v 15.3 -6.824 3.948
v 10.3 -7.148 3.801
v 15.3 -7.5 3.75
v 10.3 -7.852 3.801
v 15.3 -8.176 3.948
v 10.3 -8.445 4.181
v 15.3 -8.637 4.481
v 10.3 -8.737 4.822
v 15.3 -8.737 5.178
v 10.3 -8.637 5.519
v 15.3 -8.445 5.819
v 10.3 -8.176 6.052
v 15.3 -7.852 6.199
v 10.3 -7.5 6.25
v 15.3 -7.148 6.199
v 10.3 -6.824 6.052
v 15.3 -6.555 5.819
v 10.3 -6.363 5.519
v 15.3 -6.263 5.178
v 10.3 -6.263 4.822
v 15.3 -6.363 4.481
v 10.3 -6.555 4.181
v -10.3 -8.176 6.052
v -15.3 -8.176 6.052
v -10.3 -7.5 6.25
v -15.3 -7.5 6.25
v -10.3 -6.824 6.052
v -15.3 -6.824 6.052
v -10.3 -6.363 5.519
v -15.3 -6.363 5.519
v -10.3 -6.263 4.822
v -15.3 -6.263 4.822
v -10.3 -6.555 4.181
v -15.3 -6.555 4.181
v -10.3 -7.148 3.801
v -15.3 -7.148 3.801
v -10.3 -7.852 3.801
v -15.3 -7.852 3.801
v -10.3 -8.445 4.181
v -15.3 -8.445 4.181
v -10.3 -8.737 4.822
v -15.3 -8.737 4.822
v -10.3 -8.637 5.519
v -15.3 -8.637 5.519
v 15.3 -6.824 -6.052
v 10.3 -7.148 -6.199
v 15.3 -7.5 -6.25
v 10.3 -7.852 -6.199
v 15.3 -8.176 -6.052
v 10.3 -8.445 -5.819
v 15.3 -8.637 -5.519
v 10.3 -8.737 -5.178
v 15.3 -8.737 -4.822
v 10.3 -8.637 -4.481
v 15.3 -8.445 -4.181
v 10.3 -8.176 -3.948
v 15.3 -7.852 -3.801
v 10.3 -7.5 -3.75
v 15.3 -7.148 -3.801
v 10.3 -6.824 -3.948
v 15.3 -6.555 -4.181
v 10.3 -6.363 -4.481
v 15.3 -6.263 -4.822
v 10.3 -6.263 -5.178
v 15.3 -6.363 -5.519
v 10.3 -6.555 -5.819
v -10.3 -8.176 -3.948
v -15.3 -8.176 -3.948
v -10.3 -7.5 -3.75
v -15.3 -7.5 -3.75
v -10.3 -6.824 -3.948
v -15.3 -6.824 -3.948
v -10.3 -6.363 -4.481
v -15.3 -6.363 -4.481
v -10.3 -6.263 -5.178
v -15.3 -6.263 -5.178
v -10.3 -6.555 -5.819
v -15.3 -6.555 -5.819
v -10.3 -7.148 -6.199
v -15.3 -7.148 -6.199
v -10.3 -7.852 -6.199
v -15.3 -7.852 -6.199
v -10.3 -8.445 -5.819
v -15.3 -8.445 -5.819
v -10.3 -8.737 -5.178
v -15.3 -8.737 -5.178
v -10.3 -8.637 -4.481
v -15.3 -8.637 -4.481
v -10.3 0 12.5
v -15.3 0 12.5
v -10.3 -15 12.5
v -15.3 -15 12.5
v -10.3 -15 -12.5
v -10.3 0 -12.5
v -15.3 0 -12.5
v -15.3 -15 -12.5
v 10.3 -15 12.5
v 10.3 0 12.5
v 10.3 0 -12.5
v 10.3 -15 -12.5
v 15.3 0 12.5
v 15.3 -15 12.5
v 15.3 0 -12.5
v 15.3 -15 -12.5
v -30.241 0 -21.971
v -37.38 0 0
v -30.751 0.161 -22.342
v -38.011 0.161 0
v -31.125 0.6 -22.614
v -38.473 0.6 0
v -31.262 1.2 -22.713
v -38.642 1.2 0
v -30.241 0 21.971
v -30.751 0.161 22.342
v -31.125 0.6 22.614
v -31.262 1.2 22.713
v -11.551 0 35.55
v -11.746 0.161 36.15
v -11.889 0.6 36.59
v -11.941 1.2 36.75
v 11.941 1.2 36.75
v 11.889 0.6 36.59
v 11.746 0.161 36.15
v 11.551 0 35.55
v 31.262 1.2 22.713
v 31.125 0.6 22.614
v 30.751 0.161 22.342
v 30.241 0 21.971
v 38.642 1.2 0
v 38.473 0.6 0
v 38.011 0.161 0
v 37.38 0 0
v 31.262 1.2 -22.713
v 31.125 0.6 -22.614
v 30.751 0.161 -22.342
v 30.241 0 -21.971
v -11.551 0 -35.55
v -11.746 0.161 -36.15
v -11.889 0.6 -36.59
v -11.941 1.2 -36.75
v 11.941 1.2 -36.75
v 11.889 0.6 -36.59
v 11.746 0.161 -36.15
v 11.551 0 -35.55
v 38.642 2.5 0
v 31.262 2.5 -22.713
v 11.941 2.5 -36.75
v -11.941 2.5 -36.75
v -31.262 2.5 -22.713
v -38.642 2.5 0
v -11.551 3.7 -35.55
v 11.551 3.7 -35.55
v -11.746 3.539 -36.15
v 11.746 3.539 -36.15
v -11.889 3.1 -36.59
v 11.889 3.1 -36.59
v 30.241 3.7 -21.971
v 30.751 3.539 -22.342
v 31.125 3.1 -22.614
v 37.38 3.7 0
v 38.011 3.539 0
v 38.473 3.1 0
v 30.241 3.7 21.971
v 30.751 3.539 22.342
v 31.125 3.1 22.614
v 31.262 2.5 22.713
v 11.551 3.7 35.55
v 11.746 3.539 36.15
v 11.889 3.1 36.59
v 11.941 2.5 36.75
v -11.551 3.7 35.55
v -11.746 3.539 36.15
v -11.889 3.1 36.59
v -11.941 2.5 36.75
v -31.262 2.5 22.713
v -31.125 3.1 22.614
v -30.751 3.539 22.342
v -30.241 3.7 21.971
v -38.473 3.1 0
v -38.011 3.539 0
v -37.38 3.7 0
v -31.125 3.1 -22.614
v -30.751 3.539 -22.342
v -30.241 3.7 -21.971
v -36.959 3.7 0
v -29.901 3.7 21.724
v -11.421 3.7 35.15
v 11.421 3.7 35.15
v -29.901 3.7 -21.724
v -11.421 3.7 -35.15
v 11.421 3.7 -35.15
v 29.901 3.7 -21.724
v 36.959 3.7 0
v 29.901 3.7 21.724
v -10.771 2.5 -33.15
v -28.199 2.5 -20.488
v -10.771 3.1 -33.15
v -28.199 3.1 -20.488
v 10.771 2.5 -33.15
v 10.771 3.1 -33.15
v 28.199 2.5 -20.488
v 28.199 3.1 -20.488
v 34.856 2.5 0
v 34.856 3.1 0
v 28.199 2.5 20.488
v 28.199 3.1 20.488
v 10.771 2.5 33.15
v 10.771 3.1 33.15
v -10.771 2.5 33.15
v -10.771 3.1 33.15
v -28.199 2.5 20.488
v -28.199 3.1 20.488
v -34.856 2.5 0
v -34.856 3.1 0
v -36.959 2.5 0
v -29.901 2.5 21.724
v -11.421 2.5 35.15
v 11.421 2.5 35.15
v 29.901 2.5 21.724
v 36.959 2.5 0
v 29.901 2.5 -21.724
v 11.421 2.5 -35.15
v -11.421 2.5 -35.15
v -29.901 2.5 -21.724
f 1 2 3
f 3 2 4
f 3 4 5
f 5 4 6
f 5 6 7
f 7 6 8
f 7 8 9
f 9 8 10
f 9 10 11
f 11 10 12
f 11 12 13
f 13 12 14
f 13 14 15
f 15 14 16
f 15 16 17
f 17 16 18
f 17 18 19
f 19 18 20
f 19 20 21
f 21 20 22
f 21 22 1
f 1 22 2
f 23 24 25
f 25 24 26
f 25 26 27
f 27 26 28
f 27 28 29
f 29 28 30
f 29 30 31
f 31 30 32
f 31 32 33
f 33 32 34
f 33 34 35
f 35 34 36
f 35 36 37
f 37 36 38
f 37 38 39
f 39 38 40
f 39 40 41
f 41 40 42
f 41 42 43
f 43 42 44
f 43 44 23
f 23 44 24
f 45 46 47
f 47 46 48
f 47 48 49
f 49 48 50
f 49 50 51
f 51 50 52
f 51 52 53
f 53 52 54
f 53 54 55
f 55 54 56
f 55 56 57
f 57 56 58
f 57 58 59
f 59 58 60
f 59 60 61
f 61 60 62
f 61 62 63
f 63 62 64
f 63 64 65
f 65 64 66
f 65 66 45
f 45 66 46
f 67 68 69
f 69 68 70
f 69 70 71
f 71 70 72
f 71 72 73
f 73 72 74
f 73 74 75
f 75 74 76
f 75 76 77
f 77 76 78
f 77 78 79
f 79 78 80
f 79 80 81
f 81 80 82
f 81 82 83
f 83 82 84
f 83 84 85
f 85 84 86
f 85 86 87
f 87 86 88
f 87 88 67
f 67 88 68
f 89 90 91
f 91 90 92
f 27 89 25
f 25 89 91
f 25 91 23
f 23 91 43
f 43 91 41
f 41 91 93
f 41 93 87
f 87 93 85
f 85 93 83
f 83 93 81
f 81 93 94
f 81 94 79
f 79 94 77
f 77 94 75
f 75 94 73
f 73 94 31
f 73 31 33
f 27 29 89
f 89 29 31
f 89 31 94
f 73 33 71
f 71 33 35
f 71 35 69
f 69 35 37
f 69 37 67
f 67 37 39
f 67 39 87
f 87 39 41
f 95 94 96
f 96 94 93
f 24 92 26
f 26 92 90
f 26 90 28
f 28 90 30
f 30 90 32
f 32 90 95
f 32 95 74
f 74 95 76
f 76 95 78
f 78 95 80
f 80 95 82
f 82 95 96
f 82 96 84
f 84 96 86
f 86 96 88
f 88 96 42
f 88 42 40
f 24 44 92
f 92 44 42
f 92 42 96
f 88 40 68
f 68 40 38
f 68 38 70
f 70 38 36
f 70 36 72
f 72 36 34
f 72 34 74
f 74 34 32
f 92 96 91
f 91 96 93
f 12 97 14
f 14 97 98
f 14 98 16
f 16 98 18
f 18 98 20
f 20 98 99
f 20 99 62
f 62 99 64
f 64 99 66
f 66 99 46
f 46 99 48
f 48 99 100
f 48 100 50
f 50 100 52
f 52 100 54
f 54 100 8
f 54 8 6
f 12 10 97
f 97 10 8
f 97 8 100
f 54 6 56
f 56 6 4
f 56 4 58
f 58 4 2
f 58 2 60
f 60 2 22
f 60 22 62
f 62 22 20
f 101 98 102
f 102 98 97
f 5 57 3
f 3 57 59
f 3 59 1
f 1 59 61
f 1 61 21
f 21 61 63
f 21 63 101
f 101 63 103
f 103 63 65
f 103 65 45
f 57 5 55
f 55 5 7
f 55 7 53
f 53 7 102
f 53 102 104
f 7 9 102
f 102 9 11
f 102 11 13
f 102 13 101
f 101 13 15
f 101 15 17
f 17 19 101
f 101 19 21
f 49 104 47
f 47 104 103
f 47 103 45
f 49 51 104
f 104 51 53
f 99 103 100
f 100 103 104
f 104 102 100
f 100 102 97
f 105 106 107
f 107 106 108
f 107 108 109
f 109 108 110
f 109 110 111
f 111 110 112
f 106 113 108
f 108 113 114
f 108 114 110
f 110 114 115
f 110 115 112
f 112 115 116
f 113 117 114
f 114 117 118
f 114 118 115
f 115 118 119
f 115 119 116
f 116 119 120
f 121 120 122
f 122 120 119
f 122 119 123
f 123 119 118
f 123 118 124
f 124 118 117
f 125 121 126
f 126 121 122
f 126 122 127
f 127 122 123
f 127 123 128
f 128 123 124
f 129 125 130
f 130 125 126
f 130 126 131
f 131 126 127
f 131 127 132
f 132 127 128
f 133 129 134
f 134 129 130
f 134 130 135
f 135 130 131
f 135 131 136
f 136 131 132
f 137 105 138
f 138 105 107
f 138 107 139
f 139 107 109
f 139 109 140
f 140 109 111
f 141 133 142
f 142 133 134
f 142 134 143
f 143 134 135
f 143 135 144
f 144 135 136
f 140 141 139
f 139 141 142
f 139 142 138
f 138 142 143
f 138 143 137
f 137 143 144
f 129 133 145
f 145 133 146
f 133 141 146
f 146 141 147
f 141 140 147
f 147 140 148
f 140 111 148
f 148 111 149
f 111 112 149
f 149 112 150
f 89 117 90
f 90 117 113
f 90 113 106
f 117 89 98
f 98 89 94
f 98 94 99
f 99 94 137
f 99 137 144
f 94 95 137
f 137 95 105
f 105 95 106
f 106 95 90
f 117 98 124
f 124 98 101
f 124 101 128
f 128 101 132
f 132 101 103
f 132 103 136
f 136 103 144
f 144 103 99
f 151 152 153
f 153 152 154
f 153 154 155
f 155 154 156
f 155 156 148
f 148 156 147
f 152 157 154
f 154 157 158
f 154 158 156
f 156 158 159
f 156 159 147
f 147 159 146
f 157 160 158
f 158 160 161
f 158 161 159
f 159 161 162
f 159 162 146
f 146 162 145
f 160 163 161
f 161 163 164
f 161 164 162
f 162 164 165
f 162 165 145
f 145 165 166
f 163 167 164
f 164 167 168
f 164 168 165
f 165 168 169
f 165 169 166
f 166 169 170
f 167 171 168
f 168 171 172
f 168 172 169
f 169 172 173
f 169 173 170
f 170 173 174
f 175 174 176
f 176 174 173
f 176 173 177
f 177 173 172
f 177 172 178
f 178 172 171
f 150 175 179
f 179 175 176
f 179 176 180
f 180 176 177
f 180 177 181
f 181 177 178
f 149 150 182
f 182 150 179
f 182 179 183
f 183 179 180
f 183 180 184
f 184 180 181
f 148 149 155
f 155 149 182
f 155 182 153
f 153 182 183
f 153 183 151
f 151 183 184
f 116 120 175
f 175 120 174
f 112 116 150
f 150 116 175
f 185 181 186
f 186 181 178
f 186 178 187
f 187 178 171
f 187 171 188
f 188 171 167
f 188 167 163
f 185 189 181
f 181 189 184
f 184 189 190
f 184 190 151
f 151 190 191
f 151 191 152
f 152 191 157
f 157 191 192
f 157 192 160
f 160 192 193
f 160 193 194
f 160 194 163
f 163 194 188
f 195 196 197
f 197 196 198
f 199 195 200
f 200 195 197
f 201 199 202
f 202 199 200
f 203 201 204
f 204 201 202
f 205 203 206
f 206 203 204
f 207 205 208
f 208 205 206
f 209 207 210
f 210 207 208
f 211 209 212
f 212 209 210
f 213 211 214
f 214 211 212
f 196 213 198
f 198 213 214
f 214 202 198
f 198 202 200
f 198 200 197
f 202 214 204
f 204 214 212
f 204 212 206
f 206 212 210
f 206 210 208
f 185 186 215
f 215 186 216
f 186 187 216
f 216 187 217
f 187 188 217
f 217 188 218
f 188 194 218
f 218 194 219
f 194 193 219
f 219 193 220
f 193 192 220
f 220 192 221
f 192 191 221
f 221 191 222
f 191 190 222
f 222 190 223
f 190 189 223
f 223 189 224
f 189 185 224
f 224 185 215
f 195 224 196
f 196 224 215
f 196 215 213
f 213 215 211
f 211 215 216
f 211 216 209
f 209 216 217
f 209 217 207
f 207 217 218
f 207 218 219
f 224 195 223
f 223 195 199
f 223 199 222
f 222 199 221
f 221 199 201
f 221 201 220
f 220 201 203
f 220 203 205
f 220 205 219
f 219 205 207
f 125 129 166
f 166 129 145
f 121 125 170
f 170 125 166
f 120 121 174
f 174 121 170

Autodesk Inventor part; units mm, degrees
ref_plane "YZ Plane" through (0, 0, 0) normal (1, 0, 0) x (0, 1, 0)
ref_plane "XZ Plane" through (0, 0, 0) normal (0, 1, 0) x (-1, 0, 0)
ref_plane "XY Plane" through (0, 0, 0) normal (0, 0, 1) x (1, 0, 0)
sketch "스케치1" plane through (0, 0, 0) normal (0, 1, 0) x (-1, 0, 0)
  line L0 (-10.9012, 33.5504) -> (10.9012, 33.5504)
  line L1 (10.9012, 33.5504) -> (28.5397, 20.7353)
  line L2 (28.5397, 20.7353) -> (35.277, 0)
  line L3 (35.277, 0) -> (28.5397, -20.7353)
  line L4 (28.5397, -20.7353) -> (10.9012, -33.5504)
  line L5 (10.9012, -33.5504) -> (-10.9012, -33.5504)
  line L6 (-10.9012, -33.5504) -> (-28.5397, -20.7353)
  line L7 (-28.5397, -20.7353) -> (-35.277, 0)
  line L8 (-35.277, 0) -> (-28.5397, 20.7353)
  line L9 (-28.5397, 20.7353) -> (-10.9012, 33.5504)
  line L10 (11.9409, -36.7504) -> (-11.9409, -36.7504)
  line L11 (-11.9409, -36.7504) -> (-31.2618, -22.713)
  line L12 (-31.2618, -22.713) -> (-38.6417, 0)
  line L13 (-38.6417, 0) -> (-31.2618, 22.713)
  line L14 (-31.2618, 22.713) -> (-11.9409, 36.7504)
  line L15 (-11.9409, 36.7504) -> (11.9409, 36.7504)
  line L16 (11.9409, 36.7504) -> (31.2618, 22.713)
  line L17 (31.2618, 22.713) -> (38.6417, 0)
  line L18 (38.6417, 0) -> (31.2618, -22.713)
  line L19 (31.2618, -22.713) -> (11.9409, -36.7504)
  point P0 (0, 0)
  point P1 (0, 0)
  point P2 (0, 0)
  dimension "d0" = 70.554
  dimension "d1" = 3.2
extrude "돌출1" add sketch "스케치1" along normal blind 3.7 contours L0 L1 L2 L3 L4 L5 L6 L7 L8 L9 | L10 L11 L12 L13 L14 L15 L16 L17 L18 L19
sketch "스케치2" plane through (0, 3.7, 0) normal (0, 1, 0) x (1, 0, 0)
  line L0 (-11.4211, 35.1504) -> (11.4211, 35.1504)
  line L1 (11.4211, 35.1504) -> (29.9007, 21.7242)
  line L2 (29.9007, 21.7242) -> (36.9593, 0)
  line L3 (36.9593, 0) -> (29.9007, -21.7242)
  line L4 (29.9007, -21.7242) -> (11.4211, -35.1504)
  line L5 (11.4211, -35.1504) -> (-11.4211, -35.1504)
  line L6 (-11.4211, -35.1504) -> (-29.9007, -21.7242)
  line L7 (-29.9007, -21.7242) -> (-36.9593, 0)
  line L8 (-36.9593, 0) -> (-29.9007, 21.7242)
  line L9 (-29.9007, 21.7242) -> (-11.4211, 35.1504)
  line L10 (-31.2618, 22.713) -> (-38.6417, 0) projected
  point P0 (0, 0)
  point P1 (0, 0)
  dimension "d4" = 1.6
extrude "돌출2" cut sketch "스케치2" against normal blind 1.2
sketch "스케치3" plane through (0, 2.5, 0) normal (0, 1, 0) x (1, 0, 0)
  line L0 (-10.7712, 33.1504) -> (10.7712, 33.1504)
  line L1 (10.7712, 33.1504) -> (28.1994, 20.4881)
  line L2 (28.1994, 20.4881) -> (34.8564, 0)
  line L3 (34.8564, 0) -> (28.1994, -20.4881)
  line L4 (28.1994, -20.4881) -> (10.7712, -33.1504)
  line L5 (10.7712, -33.1504) -> (-10.7712, -33.1504)
  line L6 (-10.7712, -33.1504) -> (-28.1994, -20.4881)
  line L7 (-28.1994, -20.4881) -> (-34.8564, 0)
  line L8 (-34.8564, 0) -> (-28.1994, 20.4881)
  line L9 (-28.1994, 20.4881) -> (-10.7712, 33.1504)
  line L10 (-29.9007, 21.7242) -> (-11.4211, 35.1504) projected
  point P0 (0, 0)
  point P1 (0, 0)
  dimension "d7" = 2
extrude "돌출3" add sketch "스케치3" along normal blind 0.6
fillet "모깎기1" radius 1.2 20 edges at (0, 3.7, 36.7504) (0, 0, 36.7504) (-21.6014, 3.7, 29.7317) (-21.6014, 0, 29.7317) (-34.9517, 3.7, 11.3565) (-34.9517, 3.7, -11.3565) (-21.6014, 3.7, -29.7317) (0, 3.7, -36.7504) (21.6014, 3.7, -29.7317) (34.9517, 3.7, -11.3565) (34.9517, 3.7, 11.3565) (21.6014, 3.7, 29.7317) (21.6014, 0, -29.7317) (0, 0, -36.7504) (-21.6014, 0, -29.7317) (-34.9517, 0, -11.3565) (-34.9517, 0, 11.3565) (34.9517, 0, -11.3565) (34.9517, 0, 11.3565) (21.6014, 0, 29.7317)
sketch "스케치10" plane through (0, 0, 0) normal (0, -1, 0) x (1, 0, 0)
  line L0 (10.3, 12.5) -> (15.3, 12.5)
  line L1 (15.3, 12.5) -> (15.3, -12.5)
  line L2 (15.3, -12.5) -> (10.3, -12.5)
  line L3 (10.3, -12.5) -> (10.3, 12.5)
  line L4 (10.3, 12.5) -> (15.3, -12.5) construction
  line L5 (15.3, 12.5) -> (10.3, -12.5) construction
  line L6 (0, 0) -> (0, -7.1527)
  line L7 (-10.3, 12.5) -> (-15.3, 12.5)
  line L8 (-15.3, 12.5) -> (-15.3, -12.5)
  line L9 (-15.3, -12.5) -> (-10.3, -12.5)
  line L10 (-10.3, -12.5) -> (-10.3, 12.5)
  line L11 (-10.3, 12.5) -> (-15.3, -12.5) construction
  line L12 (-15.3, 12.5) -> (-10.3, -12.5) construction
  point P0 (12.8, 0)
  point P1 (-12.8, 0)
  dimension "d50" = 5
  dimension "d51" = 25
  dimension "d52" = 10.3
extrude "돌출7" add sketch "스케치10" along normal blind 15
sketch "스케치11" plane through (15.3, 0, 12.5) normal (1, 0, 0) x (0, 0, -1)
  circle A0 centre (7.5, -7.5) radius 1.25
  line L0 (-9.4714, 0) -> (12.5, 0) projected
  line L1 (12.5, 1.2) -> (12.5, 2.5) projected
  line L2 (12.5, 0) -> (12.5, -3.4496)
  circle A1 centre (17.5, -7.5) radius 1.25
  point P0 (12.5, 1.85)
  dimension "d55" = 2.5
  dimension "d56" = 7.5
  dimension "d57" = 5
extrude "돌출8" cut sketch "스케치11" against normal up to surface (30.6 mm away)
equation "\"d38\" = 55deg"
properties part number "OV-PAM_n_10_bottom"
